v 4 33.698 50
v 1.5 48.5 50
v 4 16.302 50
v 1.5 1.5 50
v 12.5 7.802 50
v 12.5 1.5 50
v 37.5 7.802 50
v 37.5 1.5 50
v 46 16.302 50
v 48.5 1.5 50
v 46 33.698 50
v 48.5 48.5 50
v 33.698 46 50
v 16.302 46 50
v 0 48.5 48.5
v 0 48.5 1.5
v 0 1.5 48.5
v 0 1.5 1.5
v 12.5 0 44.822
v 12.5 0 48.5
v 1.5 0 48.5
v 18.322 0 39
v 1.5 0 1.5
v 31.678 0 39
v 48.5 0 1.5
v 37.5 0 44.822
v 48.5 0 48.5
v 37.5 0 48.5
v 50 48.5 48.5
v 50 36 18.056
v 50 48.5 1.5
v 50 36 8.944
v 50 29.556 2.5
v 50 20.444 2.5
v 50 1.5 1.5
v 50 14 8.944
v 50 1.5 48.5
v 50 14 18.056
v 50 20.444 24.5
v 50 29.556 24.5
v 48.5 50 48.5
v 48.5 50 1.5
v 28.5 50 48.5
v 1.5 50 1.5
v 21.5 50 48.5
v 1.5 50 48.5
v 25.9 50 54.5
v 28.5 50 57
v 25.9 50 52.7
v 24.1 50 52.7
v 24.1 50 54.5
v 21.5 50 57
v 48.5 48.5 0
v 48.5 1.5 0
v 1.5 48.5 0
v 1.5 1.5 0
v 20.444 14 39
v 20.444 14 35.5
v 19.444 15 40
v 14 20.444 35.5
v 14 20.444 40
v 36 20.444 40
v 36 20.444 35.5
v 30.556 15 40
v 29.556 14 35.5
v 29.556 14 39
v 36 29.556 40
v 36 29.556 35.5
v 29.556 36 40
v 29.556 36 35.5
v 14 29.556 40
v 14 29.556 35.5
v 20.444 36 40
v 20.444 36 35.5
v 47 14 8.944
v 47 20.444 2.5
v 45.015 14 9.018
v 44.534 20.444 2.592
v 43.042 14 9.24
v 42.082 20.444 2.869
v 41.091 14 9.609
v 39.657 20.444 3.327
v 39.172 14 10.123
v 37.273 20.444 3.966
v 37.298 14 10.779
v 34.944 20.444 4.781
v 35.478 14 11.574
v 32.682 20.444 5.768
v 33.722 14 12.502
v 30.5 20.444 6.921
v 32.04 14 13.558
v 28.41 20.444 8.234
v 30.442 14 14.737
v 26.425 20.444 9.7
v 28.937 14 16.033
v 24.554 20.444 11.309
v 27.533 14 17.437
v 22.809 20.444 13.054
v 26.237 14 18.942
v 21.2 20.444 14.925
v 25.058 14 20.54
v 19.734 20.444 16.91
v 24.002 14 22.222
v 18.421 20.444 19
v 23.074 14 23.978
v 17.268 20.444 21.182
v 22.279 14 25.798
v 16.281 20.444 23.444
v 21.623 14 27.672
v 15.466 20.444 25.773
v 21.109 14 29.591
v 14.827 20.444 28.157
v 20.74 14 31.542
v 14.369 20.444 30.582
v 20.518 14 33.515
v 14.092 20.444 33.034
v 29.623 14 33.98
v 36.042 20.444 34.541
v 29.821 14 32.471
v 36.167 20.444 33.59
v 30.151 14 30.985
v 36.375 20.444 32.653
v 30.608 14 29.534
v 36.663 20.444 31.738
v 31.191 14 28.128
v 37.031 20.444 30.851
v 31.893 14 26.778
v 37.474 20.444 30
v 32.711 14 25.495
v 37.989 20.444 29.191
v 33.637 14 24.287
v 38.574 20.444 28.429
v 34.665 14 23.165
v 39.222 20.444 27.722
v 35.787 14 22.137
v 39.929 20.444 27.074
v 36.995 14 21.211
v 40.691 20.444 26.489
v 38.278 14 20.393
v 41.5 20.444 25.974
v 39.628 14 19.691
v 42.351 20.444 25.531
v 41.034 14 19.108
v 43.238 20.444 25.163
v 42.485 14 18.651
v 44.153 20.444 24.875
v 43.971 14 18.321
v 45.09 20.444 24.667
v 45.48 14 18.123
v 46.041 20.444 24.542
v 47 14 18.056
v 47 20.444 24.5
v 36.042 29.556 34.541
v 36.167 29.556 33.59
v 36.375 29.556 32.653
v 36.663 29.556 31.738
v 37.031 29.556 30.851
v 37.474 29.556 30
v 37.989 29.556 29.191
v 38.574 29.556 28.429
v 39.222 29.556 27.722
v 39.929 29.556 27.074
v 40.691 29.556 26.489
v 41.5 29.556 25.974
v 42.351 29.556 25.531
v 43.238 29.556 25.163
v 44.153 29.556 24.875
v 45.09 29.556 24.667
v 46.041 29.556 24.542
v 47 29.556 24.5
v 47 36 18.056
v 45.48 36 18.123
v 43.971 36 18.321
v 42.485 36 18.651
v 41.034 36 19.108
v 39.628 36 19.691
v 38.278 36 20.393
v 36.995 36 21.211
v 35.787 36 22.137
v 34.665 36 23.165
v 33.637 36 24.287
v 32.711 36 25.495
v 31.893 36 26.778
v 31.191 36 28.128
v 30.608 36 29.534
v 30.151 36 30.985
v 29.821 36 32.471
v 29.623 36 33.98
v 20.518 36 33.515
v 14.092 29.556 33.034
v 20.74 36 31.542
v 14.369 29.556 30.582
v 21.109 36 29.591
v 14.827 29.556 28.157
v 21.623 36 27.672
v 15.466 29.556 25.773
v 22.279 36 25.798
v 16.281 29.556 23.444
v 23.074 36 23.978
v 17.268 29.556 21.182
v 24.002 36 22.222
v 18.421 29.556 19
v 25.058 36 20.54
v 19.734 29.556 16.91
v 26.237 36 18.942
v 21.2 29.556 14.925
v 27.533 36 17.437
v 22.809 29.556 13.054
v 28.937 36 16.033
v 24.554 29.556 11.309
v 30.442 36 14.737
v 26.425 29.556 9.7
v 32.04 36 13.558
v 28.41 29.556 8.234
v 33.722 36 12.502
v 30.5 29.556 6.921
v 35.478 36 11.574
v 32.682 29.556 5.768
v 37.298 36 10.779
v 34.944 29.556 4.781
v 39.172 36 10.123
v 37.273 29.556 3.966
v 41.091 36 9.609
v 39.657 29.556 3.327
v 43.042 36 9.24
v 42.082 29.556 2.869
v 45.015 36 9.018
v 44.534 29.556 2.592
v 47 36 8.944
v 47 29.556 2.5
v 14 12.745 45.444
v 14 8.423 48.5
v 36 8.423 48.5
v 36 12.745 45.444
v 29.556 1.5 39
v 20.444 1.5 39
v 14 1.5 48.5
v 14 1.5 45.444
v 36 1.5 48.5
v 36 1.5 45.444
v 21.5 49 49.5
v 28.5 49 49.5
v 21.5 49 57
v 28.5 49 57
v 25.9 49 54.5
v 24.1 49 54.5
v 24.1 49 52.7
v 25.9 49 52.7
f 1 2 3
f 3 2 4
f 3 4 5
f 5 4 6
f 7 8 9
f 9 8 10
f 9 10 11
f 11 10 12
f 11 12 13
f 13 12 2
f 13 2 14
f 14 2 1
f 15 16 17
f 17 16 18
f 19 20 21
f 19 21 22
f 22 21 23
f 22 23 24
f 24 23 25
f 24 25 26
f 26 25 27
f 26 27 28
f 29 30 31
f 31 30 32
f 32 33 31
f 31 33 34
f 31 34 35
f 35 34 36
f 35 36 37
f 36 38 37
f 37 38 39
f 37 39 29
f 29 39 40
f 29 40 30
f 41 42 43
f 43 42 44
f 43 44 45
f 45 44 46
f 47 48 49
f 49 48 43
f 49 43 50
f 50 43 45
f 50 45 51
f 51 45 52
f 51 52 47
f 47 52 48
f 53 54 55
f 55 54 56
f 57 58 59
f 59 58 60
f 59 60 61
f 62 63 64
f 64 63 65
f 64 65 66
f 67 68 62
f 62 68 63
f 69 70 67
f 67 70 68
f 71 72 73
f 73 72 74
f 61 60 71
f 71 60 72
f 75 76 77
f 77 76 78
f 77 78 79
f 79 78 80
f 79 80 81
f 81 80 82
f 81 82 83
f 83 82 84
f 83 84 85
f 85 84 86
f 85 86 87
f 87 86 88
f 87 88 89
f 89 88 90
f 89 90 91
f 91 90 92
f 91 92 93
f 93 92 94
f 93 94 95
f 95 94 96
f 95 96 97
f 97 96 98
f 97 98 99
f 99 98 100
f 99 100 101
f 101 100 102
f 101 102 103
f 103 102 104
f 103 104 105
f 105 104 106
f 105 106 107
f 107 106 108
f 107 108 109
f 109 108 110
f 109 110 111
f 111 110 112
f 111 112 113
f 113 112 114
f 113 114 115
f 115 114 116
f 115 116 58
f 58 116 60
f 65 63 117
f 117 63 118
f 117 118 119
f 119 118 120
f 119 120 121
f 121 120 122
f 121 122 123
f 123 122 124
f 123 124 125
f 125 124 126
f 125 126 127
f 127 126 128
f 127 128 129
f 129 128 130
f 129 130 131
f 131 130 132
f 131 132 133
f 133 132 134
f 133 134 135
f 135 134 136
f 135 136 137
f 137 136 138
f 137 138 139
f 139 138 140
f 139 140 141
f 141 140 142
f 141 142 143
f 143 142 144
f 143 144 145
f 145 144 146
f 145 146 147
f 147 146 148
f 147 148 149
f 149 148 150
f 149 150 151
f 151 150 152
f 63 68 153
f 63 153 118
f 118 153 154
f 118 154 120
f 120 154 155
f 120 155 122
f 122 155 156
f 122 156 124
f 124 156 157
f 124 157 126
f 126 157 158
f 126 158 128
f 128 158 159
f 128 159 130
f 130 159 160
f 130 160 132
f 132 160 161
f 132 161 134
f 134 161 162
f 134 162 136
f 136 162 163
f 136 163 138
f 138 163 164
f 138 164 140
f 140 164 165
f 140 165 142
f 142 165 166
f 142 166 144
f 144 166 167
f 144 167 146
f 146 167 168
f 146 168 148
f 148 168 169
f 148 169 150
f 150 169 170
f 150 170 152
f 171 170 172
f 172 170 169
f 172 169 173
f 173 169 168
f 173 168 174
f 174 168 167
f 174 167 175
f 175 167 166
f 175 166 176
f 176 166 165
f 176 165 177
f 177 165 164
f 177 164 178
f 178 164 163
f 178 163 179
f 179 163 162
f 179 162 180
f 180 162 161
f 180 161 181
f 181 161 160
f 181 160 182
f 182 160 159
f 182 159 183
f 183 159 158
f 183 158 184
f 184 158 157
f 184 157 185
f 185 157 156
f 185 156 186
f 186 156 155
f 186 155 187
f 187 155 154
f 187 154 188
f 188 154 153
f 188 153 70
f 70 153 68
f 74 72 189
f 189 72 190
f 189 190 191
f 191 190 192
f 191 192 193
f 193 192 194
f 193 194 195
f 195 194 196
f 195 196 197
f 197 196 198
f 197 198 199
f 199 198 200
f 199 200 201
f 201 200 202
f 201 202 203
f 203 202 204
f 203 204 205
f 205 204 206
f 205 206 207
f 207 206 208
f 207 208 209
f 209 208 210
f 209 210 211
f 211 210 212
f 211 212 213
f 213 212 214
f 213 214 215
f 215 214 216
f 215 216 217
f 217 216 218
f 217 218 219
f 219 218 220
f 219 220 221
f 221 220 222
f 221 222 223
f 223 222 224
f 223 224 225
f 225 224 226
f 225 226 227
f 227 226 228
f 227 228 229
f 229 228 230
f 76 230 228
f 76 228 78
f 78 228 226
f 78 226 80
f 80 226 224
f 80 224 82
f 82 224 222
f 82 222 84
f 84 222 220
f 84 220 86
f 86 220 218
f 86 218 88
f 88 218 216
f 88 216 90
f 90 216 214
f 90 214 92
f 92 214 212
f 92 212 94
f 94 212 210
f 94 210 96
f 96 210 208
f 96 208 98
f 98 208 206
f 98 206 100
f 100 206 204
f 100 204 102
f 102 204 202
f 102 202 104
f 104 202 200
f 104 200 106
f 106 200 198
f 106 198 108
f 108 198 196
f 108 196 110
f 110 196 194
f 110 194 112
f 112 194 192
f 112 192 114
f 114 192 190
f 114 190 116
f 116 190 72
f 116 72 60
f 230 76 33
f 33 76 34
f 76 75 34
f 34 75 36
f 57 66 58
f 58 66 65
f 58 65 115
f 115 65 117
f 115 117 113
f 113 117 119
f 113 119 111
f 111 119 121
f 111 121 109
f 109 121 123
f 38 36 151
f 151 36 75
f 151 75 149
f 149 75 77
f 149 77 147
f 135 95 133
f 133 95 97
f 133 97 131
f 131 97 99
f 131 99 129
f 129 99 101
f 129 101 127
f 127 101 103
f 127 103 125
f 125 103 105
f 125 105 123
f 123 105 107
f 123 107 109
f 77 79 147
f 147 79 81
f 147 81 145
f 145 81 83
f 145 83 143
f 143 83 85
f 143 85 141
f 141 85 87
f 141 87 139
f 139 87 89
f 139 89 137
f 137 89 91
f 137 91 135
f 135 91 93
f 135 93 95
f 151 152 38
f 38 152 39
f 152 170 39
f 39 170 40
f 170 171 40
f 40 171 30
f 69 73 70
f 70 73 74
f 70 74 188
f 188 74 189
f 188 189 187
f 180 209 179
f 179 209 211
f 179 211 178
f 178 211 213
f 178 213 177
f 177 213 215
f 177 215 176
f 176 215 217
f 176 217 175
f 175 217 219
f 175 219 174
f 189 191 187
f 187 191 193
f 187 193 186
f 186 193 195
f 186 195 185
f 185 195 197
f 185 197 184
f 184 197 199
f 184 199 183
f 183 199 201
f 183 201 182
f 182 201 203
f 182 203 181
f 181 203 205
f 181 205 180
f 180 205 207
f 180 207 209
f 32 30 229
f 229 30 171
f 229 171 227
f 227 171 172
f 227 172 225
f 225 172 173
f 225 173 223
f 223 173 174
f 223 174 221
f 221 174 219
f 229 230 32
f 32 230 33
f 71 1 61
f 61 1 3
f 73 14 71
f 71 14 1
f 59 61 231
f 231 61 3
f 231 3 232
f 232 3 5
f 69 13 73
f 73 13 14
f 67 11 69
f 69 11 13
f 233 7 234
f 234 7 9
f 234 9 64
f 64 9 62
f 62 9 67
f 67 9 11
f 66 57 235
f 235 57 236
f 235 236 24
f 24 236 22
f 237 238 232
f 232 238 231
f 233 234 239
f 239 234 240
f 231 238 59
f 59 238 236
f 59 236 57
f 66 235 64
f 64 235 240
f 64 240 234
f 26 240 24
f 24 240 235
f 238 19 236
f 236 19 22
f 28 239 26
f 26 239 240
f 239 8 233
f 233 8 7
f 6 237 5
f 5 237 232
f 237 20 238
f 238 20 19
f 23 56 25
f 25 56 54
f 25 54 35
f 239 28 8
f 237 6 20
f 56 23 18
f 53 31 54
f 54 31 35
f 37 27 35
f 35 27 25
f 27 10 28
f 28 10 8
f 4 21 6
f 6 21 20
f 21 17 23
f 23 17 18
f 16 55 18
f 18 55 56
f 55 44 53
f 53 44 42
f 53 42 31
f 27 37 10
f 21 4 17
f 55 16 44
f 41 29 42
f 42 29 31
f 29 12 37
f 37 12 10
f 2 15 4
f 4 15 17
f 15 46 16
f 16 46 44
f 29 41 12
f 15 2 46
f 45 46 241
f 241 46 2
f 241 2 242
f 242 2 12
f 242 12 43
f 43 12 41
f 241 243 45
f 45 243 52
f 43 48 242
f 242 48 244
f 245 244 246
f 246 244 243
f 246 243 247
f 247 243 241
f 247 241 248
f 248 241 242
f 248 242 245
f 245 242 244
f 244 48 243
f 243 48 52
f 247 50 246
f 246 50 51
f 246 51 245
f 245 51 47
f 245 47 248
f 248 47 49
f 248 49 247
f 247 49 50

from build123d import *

# Parameters (mm, degrees)
SKETCH1_W                = 50
SKETCH1_H                = 50
BOSS_EXTRUDE1_DEPTH      = 50
CHAMFER1_SIZE            = 10
CUT_EXTRUDE1_DEPTH       = 22
CHAMFER2_SIZE            = 1.5
BOSS_EXTRUDE2_DEPTH      = 7
BOSS_EXTRUDE2_DEPTH_BACK = 10
SKETCH11_W               = 7
SKETCH11_H               = 1
SKETCH12_W               = 1.8
SKETCH12_H               = 1.8
CUT_EXTRUDE2_DEPTH       = 7


with BuildPart() as part:
    # Sketch1 → Boss-Extrude1 (new body)
    with BuildSketch(Plane.XY):
        with Locations((25, 25)):
            Rectangle(SKETCH1_W, SKETCH1_H)
    extrude(amount=BOSS_EXTRUDE1_DEPTH)

    # Cut-Sweep5: sweep along a path in Sketch9
    with BuildLine(Plane(origin=(0, 25, 0), x_dir=(-1, 0, 0), z_dir=(0, -1, 0))) as cut_sweep5_path:
        Line((-50, -13.5), (-47, -13.5))
        ThreePointArc((-47, -13.5), (-31.443650814, -19.943650814), (-25, -35.5))
        Line((-25, -35.5), (-25, -50))
    # Sketch8 → Cut-Sweep5 (sweep, cut)
    with BuildSketch(Plane(origin=(50, 0, 0), x_dir=(0, 0, -1), z_dir=(1, 0, 0))):
        Polygon((-2.5, 29.556349186), (-8.943650814, 36), (-18.056349186, 36), (-24.5, 29.556349186), (-24.5, 20.443650814), (-18.056349186, 14), (-8.943650814, 14), (-2.5, 20.443650814), align=None)
    sweep(path=cut_sweep5_path.line, mode=Mode.SUBTRACT)

    # Chamfer1
    chamfer1_edges = [part.edges().sort_by_distance(p)[0] for p in [
        (17.221825407, 17.221825407, 50),
        (32.778174593, 17.221825407, 50),
        (36, 25, 50),
        (32.778174593, 32.778174593, 50),
        (17.221825407, 32.778174593, 50),
        (14, 25, 50),
        (25, 14, 50),
        (25, 36, 50),
    ]]
    chamfer(chamfer1_edges, length=CHAMFER1_SIZE)

    # Sketch10 → Cut-Extrude1 (cut)
    with BuildSketch(Plane.XZ):
        Polygon((29.556349186, 39), (36, 45.443650814), (36, 54.556349186), (29.556349186, 61), (20.443650814, 61), (14, 54.556349186), (14, 45.443650814), (20.443650814, 39), align=None)
    extrude(amount=-CUT_EXTRUDE1_DEPTH, mode=Mode.SUBTRACT)

    # Chamfer2
    chamfer2_edges = [part.edges().sort_by_distance(p)[0] for p in [
        (50, 25, 50),
        (25, 50, 50),
        (0, 25, 50),
        (25, 50, 0),
        (50, 25, 0),
        (25, 0, 0),
        (0, 25, 0),
        (7, 0, 50),
        (0, 50, 25),
        (50, 50, 25),
        (50, 0, 25),
        (0, 0, 25),
        (43, 0, 50),
        (36, 0, 47.721825407),
        (14, 0, 47.721825407),
        (17.221825407, 0, 42.221825407),
        (32.778174593, 0, 42.221825407),
        (14, 3.150757595, 50),
        (36, 3.150757595, 50),
    ]]
    chamfer(chamfer2_edges, length=CHAMFER2_SIZE)

    # Sketch11 → Boss-Extrude2 (add, two sides: drawn at the far end of the back side and taken through both)
    with BuildSketch(Plane.XY.offset(50).offset(-BOSS_EXTRUDE2_DEPTH_BACK)):
        with Locations((25, 49.5)):
            Rectangle(SKETCH11_W, SKETCH11_H)
    extrude(amount=BOSS_EXTRUDE2_DEPTH + BOSS_EXTRUDE2_DEPTH_BACK)

    # Sketch12 → Cut-Extrude2 (cut)
    with BuildSketch(Plane.XZ.offset(-49)):
        with Locations((25, 53.6)):
            Rectangle(SKETCH12_W, SKETCH12_H)
    extrude(amount=-CUT_EXTRUDE2_DEPTH, mode=Mode.SUBTRACT)


solid = part.part
